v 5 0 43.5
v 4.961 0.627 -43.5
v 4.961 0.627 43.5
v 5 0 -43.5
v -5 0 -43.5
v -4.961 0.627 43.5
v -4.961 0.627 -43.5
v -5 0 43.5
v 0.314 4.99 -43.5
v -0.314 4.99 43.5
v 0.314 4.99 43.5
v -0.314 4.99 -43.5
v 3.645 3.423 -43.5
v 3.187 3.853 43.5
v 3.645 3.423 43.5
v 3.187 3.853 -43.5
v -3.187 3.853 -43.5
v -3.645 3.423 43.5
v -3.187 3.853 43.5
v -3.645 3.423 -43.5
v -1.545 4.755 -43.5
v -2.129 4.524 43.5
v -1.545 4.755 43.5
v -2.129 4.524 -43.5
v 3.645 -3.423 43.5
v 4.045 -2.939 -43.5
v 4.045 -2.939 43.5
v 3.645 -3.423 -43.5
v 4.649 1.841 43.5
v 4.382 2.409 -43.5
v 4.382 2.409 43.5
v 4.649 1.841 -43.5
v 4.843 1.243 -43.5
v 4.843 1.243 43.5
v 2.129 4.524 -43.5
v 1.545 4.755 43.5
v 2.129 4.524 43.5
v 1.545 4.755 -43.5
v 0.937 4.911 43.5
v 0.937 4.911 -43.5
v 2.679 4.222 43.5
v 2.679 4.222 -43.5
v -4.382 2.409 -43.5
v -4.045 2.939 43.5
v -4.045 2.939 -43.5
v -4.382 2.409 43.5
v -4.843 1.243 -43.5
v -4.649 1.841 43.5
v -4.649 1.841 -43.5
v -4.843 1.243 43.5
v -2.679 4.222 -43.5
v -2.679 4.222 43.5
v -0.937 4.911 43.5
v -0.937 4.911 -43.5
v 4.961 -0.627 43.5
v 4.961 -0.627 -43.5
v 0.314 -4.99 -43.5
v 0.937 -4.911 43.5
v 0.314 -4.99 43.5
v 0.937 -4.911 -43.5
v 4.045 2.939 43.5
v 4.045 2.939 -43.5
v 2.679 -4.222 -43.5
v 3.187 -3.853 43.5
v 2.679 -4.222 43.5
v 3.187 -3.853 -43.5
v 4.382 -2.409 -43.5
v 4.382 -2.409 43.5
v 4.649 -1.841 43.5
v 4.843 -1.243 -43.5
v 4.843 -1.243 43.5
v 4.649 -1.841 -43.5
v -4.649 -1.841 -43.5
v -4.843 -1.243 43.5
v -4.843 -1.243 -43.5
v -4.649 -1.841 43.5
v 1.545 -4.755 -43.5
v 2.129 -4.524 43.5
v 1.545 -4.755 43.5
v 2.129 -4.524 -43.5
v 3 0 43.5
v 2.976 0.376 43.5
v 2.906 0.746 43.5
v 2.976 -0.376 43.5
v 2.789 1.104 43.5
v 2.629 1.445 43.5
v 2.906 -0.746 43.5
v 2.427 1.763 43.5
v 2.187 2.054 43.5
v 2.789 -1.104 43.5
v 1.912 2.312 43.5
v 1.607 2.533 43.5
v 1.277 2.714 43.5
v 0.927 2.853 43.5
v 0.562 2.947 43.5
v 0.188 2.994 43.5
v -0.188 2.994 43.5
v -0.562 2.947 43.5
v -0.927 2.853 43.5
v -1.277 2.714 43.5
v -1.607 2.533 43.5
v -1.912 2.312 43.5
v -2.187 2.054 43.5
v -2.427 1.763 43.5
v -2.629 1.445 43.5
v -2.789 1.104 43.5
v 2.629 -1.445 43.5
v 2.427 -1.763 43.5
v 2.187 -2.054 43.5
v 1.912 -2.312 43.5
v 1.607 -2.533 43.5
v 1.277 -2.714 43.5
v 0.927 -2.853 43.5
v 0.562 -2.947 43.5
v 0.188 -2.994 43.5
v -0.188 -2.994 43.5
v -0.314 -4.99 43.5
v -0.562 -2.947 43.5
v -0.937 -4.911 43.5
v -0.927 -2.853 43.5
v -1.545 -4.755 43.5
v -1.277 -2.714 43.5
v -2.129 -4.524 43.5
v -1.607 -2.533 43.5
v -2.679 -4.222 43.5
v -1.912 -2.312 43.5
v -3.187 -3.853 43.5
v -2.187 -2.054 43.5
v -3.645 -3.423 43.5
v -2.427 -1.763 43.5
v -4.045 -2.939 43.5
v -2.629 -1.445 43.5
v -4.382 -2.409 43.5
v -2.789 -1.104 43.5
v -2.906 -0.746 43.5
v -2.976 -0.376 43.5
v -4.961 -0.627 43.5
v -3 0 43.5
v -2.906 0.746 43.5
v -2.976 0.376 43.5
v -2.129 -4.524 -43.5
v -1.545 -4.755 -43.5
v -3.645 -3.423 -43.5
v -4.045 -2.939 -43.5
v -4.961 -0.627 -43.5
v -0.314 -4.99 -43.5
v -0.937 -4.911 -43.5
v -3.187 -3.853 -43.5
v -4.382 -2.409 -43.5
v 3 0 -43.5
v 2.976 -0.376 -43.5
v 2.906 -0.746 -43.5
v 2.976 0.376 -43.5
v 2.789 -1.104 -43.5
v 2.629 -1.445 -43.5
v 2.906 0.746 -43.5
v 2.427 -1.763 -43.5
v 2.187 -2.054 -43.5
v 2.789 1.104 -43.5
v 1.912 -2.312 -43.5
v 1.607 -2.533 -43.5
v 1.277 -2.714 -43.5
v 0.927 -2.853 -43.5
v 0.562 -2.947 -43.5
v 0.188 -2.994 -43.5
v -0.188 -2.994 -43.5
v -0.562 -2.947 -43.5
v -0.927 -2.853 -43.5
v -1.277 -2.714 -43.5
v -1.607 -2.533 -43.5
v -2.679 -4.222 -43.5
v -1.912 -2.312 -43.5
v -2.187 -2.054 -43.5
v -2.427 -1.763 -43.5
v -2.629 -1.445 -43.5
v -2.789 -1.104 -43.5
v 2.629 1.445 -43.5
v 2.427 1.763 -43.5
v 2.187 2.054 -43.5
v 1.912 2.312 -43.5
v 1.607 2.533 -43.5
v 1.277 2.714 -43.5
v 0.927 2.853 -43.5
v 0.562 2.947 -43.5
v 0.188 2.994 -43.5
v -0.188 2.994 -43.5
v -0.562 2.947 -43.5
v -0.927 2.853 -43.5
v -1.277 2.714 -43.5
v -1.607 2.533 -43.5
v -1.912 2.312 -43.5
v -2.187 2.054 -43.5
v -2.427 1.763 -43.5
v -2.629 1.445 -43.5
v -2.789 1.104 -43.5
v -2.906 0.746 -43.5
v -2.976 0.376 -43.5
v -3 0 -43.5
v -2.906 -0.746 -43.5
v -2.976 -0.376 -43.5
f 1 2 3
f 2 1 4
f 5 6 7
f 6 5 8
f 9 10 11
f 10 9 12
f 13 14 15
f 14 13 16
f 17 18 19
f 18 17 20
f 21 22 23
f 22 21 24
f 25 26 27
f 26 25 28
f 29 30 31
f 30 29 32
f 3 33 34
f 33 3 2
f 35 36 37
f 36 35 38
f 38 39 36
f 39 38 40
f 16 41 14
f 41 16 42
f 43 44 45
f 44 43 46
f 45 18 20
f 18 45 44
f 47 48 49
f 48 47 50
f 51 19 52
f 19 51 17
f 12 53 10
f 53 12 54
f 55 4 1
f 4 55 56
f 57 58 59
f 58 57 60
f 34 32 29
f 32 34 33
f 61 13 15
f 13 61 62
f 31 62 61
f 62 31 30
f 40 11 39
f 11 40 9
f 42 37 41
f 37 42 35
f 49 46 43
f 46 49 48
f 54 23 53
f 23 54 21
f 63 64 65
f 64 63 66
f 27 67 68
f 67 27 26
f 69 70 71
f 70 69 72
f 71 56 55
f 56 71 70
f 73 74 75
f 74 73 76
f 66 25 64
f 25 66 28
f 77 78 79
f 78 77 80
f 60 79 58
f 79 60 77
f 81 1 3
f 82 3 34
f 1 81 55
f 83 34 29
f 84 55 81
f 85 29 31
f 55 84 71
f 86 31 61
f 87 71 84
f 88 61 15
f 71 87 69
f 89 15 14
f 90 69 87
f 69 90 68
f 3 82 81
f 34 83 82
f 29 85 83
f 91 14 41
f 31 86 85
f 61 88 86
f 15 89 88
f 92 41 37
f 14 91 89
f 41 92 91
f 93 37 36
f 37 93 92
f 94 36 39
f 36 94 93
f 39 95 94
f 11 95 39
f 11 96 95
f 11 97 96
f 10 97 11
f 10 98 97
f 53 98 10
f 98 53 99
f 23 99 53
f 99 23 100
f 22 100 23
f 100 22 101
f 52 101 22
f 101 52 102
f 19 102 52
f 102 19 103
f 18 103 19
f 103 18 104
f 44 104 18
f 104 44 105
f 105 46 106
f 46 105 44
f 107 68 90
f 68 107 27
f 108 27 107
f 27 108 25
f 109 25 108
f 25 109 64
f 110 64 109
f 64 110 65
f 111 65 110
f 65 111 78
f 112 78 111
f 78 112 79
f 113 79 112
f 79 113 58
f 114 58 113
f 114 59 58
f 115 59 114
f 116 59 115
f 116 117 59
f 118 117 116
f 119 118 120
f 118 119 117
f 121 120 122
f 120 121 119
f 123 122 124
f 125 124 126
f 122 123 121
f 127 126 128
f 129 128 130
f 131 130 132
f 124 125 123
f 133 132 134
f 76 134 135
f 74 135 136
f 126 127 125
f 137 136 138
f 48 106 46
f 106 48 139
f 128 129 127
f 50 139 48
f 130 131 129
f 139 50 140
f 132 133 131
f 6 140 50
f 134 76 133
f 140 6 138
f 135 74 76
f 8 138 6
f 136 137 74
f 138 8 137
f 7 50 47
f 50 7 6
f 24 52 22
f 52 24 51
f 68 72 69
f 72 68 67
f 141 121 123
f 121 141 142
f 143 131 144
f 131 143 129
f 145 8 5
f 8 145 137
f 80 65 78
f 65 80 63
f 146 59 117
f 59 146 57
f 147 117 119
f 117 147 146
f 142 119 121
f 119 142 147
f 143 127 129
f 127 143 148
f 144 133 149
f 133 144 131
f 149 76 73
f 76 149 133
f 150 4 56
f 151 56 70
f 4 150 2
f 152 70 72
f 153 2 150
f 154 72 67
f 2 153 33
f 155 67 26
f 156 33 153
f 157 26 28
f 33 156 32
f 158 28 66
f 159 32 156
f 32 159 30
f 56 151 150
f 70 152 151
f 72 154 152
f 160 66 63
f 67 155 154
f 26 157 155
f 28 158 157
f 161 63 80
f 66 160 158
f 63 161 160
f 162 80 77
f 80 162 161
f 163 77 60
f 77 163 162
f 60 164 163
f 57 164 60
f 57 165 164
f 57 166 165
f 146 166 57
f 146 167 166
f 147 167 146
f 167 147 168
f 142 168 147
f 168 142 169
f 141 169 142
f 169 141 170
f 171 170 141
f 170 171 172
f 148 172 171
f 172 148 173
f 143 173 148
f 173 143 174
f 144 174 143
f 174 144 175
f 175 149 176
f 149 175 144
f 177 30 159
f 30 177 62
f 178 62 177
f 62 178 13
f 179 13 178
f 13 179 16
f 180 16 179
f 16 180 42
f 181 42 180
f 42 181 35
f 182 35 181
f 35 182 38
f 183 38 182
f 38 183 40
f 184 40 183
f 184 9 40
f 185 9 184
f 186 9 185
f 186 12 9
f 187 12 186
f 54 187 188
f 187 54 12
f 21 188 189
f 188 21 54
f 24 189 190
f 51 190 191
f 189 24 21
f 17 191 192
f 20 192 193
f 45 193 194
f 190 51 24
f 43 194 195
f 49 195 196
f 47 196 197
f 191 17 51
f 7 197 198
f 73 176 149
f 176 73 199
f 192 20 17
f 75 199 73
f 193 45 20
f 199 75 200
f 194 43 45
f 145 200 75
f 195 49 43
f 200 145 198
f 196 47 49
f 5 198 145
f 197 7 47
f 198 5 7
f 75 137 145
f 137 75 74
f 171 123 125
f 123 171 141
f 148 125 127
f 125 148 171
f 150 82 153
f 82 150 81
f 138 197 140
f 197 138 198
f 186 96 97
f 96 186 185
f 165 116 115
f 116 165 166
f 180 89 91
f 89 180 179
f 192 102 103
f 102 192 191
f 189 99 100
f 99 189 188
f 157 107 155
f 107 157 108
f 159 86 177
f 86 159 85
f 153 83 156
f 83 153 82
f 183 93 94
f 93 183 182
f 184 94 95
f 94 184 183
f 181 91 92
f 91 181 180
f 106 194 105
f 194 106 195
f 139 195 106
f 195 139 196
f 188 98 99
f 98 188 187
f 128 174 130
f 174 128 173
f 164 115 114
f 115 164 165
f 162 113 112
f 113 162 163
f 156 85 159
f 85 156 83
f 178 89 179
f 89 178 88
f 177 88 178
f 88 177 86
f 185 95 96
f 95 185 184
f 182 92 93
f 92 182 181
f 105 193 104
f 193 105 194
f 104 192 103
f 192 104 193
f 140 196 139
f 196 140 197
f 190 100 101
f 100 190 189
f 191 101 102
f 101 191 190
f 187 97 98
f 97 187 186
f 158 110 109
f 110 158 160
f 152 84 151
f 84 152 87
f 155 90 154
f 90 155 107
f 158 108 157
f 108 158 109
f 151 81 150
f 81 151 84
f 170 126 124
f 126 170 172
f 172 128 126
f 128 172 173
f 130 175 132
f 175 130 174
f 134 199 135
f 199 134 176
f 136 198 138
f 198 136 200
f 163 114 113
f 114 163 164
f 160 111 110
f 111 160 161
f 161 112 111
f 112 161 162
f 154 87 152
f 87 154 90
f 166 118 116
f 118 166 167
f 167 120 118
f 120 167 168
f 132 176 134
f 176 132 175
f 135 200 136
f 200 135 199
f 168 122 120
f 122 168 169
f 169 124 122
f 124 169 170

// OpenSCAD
$fn = 50;


difference() {
	union() {
		translate(v = [0, 0, -43.5000000000]) {
			cylinder(h = 87, r = 5.0000000000);
		}
	}
	union() {
		translate(v = [0, 0, -100.0000000000]) {
			cylinder(h = 200, r = 3.0000000000);
		}
	}
}
